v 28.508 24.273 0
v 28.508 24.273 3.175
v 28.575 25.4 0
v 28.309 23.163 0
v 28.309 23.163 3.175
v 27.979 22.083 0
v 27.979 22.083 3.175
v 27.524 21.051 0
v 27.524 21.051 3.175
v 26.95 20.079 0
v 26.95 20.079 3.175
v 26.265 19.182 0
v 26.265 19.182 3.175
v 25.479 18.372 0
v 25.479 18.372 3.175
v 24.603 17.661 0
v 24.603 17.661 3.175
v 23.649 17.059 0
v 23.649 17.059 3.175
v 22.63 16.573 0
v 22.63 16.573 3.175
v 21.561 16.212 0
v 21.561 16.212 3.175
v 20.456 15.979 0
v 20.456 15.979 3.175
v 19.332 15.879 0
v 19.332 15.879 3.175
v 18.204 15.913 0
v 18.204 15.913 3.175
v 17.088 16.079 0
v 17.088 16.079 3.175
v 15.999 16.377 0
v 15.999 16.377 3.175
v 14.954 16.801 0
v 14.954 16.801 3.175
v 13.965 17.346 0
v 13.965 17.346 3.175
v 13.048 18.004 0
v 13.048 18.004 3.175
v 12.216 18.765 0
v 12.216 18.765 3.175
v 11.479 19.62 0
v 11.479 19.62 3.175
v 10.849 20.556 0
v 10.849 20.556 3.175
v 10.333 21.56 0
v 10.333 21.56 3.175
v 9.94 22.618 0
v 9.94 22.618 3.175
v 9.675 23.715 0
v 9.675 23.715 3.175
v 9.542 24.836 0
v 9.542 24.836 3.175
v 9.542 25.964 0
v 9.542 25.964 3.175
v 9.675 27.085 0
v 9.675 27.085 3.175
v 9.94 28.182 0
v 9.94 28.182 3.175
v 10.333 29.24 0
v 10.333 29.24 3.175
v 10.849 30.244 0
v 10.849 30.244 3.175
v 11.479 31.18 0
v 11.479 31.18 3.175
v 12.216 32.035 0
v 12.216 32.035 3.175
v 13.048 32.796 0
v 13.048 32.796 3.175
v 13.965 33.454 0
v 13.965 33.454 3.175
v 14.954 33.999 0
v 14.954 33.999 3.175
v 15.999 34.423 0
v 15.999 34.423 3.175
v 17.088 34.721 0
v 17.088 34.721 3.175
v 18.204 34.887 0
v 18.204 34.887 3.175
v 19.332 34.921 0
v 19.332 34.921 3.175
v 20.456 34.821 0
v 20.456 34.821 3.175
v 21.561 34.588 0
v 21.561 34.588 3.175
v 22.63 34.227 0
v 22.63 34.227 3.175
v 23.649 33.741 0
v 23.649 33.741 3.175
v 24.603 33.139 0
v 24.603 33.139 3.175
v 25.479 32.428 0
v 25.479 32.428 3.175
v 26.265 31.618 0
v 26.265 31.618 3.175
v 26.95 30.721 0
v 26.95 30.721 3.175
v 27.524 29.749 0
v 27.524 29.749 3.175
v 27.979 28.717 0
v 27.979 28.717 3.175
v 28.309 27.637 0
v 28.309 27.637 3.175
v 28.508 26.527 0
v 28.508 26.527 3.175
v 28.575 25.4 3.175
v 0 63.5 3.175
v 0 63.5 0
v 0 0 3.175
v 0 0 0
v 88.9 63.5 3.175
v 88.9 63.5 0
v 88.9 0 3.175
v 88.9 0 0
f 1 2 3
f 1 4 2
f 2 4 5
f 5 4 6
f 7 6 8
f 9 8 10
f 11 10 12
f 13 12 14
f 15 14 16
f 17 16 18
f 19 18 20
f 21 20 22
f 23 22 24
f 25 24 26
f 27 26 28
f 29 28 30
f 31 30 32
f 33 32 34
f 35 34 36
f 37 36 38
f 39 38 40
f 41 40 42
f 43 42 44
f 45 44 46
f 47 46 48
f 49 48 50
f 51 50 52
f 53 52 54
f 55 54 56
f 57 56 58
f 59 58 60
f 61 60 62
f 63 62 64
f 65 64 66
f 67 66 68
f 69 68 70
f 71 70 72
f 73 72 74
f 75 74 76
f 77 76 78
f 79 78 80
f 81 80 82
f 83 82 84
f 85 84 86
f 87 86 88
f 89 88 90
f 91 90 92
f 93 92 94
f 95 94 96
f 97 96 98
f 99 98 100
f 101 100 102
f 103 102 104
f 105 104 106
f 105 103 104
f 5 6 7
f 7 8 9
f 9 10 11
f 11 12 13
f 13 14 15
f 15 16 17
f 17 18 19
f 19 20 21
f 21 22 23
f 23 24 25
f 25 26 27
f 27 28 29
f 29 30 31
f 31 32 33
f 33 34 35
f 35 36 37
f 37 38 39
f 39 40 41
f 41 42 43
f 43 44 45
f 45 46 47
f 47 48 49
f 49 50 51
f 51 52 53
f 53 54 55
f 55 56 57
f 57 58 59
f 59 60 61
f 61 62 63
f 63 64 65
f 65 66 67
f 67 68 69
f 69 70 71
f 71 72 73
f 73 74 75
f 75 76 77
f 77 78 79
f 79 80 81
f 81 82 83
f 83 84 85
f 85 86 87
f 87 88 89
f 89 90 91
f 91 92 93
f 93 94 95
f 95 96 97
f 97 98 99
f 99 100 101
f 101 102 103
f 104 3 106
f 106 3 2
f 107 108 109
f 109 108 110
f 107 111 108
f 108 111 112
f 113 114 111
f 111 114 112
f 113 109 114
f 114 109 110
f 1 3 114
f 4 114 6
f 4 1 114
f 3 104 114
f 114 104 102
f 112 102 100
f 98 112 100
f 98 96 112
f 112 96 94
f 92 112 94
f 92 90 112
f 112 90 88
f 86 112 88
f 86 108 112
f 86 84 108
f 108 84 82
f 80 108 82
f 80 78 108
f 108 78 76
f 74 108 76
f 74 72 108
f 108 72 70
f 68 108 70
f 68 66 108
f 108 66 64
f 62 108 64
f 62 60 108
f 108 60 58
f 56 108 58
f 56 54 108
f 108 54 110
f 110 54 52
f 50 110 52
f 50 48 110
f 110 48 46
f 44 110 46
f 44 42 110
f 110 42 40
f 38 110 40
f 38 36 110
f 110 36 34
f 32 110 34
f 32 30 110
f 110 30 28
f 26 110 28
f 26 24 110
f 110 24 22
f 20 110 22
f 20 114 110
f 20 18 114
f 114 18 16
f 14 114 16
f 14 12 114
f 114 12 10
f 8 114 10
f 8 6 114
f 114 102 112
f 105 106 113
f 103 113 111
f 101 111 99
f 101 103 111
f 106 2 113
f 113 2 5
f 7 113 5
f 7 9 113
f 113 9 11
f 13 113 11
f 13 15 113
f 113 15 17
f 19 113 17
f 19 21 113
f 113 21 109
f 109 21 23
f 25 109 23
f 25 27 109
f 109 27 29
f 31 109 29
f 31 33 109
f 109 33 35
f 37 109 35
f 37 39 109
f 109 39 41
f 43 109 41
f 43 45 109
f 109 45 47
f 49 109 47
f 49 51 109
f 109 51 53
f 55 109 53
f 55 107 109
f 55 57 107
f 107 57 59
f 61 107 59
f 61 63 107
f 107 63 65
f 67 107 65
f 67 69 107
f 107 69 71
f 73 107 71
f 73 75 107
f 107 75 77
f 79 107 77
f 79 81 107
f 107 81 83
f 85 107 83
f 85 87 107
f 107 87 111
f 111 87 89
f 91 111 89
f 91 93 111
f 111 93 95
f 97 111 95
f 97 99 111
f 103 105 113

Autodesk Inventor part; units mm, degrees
ref_plane "YZ Plane" through (0, 0, 0) normal (1, 0, 0) x (0, 1, 0)
ref_plane "XZ Plane" through (0, 0, 0) normal (0, 1, 0) x (-1, 0, 0)
ref_plane "XY Plane" through (0, 0, 0) normal (0, 0, 1) x (1, 0, 0)
sketch "Sketch1" plane through (0, 0, 0) normal (0, 0, 1) x (1, 0, 0)
  line L0 (0, 0) -> (88.9, 0)
  line L1 (88.9, 0) -> (88.9, 63.5)
  line L2 (88.9, 63.5) -> (0, 63.5)
  line L3 (0, 63.5) -> (0, 0)
  dimension "d0" = 88.9
  dimension "d1" = 63.5
extrude "Extrusion1" add sketch "Sketch1" along normal blind 3.175
sketch "Sketch2" plane through (0, 0, 3.175) normal (0, 0, 1) x (1, 0, 0)
  line L0 (0, 0) -> (0, 63.5) projected
  line L1 (88.9, 0) -> (0, 0) projected
  circle A0 centre (19.05, 25.4) radius 9.525
  dimension "d4" = 19.05
  dimension "d5" = 19.05
  dimension "d6" = 25.4
extrude "Extrusion2" cut sketch "Sketch2" against normal through all
properties part number "Plate_VerticalRollerMount_Bottom"
